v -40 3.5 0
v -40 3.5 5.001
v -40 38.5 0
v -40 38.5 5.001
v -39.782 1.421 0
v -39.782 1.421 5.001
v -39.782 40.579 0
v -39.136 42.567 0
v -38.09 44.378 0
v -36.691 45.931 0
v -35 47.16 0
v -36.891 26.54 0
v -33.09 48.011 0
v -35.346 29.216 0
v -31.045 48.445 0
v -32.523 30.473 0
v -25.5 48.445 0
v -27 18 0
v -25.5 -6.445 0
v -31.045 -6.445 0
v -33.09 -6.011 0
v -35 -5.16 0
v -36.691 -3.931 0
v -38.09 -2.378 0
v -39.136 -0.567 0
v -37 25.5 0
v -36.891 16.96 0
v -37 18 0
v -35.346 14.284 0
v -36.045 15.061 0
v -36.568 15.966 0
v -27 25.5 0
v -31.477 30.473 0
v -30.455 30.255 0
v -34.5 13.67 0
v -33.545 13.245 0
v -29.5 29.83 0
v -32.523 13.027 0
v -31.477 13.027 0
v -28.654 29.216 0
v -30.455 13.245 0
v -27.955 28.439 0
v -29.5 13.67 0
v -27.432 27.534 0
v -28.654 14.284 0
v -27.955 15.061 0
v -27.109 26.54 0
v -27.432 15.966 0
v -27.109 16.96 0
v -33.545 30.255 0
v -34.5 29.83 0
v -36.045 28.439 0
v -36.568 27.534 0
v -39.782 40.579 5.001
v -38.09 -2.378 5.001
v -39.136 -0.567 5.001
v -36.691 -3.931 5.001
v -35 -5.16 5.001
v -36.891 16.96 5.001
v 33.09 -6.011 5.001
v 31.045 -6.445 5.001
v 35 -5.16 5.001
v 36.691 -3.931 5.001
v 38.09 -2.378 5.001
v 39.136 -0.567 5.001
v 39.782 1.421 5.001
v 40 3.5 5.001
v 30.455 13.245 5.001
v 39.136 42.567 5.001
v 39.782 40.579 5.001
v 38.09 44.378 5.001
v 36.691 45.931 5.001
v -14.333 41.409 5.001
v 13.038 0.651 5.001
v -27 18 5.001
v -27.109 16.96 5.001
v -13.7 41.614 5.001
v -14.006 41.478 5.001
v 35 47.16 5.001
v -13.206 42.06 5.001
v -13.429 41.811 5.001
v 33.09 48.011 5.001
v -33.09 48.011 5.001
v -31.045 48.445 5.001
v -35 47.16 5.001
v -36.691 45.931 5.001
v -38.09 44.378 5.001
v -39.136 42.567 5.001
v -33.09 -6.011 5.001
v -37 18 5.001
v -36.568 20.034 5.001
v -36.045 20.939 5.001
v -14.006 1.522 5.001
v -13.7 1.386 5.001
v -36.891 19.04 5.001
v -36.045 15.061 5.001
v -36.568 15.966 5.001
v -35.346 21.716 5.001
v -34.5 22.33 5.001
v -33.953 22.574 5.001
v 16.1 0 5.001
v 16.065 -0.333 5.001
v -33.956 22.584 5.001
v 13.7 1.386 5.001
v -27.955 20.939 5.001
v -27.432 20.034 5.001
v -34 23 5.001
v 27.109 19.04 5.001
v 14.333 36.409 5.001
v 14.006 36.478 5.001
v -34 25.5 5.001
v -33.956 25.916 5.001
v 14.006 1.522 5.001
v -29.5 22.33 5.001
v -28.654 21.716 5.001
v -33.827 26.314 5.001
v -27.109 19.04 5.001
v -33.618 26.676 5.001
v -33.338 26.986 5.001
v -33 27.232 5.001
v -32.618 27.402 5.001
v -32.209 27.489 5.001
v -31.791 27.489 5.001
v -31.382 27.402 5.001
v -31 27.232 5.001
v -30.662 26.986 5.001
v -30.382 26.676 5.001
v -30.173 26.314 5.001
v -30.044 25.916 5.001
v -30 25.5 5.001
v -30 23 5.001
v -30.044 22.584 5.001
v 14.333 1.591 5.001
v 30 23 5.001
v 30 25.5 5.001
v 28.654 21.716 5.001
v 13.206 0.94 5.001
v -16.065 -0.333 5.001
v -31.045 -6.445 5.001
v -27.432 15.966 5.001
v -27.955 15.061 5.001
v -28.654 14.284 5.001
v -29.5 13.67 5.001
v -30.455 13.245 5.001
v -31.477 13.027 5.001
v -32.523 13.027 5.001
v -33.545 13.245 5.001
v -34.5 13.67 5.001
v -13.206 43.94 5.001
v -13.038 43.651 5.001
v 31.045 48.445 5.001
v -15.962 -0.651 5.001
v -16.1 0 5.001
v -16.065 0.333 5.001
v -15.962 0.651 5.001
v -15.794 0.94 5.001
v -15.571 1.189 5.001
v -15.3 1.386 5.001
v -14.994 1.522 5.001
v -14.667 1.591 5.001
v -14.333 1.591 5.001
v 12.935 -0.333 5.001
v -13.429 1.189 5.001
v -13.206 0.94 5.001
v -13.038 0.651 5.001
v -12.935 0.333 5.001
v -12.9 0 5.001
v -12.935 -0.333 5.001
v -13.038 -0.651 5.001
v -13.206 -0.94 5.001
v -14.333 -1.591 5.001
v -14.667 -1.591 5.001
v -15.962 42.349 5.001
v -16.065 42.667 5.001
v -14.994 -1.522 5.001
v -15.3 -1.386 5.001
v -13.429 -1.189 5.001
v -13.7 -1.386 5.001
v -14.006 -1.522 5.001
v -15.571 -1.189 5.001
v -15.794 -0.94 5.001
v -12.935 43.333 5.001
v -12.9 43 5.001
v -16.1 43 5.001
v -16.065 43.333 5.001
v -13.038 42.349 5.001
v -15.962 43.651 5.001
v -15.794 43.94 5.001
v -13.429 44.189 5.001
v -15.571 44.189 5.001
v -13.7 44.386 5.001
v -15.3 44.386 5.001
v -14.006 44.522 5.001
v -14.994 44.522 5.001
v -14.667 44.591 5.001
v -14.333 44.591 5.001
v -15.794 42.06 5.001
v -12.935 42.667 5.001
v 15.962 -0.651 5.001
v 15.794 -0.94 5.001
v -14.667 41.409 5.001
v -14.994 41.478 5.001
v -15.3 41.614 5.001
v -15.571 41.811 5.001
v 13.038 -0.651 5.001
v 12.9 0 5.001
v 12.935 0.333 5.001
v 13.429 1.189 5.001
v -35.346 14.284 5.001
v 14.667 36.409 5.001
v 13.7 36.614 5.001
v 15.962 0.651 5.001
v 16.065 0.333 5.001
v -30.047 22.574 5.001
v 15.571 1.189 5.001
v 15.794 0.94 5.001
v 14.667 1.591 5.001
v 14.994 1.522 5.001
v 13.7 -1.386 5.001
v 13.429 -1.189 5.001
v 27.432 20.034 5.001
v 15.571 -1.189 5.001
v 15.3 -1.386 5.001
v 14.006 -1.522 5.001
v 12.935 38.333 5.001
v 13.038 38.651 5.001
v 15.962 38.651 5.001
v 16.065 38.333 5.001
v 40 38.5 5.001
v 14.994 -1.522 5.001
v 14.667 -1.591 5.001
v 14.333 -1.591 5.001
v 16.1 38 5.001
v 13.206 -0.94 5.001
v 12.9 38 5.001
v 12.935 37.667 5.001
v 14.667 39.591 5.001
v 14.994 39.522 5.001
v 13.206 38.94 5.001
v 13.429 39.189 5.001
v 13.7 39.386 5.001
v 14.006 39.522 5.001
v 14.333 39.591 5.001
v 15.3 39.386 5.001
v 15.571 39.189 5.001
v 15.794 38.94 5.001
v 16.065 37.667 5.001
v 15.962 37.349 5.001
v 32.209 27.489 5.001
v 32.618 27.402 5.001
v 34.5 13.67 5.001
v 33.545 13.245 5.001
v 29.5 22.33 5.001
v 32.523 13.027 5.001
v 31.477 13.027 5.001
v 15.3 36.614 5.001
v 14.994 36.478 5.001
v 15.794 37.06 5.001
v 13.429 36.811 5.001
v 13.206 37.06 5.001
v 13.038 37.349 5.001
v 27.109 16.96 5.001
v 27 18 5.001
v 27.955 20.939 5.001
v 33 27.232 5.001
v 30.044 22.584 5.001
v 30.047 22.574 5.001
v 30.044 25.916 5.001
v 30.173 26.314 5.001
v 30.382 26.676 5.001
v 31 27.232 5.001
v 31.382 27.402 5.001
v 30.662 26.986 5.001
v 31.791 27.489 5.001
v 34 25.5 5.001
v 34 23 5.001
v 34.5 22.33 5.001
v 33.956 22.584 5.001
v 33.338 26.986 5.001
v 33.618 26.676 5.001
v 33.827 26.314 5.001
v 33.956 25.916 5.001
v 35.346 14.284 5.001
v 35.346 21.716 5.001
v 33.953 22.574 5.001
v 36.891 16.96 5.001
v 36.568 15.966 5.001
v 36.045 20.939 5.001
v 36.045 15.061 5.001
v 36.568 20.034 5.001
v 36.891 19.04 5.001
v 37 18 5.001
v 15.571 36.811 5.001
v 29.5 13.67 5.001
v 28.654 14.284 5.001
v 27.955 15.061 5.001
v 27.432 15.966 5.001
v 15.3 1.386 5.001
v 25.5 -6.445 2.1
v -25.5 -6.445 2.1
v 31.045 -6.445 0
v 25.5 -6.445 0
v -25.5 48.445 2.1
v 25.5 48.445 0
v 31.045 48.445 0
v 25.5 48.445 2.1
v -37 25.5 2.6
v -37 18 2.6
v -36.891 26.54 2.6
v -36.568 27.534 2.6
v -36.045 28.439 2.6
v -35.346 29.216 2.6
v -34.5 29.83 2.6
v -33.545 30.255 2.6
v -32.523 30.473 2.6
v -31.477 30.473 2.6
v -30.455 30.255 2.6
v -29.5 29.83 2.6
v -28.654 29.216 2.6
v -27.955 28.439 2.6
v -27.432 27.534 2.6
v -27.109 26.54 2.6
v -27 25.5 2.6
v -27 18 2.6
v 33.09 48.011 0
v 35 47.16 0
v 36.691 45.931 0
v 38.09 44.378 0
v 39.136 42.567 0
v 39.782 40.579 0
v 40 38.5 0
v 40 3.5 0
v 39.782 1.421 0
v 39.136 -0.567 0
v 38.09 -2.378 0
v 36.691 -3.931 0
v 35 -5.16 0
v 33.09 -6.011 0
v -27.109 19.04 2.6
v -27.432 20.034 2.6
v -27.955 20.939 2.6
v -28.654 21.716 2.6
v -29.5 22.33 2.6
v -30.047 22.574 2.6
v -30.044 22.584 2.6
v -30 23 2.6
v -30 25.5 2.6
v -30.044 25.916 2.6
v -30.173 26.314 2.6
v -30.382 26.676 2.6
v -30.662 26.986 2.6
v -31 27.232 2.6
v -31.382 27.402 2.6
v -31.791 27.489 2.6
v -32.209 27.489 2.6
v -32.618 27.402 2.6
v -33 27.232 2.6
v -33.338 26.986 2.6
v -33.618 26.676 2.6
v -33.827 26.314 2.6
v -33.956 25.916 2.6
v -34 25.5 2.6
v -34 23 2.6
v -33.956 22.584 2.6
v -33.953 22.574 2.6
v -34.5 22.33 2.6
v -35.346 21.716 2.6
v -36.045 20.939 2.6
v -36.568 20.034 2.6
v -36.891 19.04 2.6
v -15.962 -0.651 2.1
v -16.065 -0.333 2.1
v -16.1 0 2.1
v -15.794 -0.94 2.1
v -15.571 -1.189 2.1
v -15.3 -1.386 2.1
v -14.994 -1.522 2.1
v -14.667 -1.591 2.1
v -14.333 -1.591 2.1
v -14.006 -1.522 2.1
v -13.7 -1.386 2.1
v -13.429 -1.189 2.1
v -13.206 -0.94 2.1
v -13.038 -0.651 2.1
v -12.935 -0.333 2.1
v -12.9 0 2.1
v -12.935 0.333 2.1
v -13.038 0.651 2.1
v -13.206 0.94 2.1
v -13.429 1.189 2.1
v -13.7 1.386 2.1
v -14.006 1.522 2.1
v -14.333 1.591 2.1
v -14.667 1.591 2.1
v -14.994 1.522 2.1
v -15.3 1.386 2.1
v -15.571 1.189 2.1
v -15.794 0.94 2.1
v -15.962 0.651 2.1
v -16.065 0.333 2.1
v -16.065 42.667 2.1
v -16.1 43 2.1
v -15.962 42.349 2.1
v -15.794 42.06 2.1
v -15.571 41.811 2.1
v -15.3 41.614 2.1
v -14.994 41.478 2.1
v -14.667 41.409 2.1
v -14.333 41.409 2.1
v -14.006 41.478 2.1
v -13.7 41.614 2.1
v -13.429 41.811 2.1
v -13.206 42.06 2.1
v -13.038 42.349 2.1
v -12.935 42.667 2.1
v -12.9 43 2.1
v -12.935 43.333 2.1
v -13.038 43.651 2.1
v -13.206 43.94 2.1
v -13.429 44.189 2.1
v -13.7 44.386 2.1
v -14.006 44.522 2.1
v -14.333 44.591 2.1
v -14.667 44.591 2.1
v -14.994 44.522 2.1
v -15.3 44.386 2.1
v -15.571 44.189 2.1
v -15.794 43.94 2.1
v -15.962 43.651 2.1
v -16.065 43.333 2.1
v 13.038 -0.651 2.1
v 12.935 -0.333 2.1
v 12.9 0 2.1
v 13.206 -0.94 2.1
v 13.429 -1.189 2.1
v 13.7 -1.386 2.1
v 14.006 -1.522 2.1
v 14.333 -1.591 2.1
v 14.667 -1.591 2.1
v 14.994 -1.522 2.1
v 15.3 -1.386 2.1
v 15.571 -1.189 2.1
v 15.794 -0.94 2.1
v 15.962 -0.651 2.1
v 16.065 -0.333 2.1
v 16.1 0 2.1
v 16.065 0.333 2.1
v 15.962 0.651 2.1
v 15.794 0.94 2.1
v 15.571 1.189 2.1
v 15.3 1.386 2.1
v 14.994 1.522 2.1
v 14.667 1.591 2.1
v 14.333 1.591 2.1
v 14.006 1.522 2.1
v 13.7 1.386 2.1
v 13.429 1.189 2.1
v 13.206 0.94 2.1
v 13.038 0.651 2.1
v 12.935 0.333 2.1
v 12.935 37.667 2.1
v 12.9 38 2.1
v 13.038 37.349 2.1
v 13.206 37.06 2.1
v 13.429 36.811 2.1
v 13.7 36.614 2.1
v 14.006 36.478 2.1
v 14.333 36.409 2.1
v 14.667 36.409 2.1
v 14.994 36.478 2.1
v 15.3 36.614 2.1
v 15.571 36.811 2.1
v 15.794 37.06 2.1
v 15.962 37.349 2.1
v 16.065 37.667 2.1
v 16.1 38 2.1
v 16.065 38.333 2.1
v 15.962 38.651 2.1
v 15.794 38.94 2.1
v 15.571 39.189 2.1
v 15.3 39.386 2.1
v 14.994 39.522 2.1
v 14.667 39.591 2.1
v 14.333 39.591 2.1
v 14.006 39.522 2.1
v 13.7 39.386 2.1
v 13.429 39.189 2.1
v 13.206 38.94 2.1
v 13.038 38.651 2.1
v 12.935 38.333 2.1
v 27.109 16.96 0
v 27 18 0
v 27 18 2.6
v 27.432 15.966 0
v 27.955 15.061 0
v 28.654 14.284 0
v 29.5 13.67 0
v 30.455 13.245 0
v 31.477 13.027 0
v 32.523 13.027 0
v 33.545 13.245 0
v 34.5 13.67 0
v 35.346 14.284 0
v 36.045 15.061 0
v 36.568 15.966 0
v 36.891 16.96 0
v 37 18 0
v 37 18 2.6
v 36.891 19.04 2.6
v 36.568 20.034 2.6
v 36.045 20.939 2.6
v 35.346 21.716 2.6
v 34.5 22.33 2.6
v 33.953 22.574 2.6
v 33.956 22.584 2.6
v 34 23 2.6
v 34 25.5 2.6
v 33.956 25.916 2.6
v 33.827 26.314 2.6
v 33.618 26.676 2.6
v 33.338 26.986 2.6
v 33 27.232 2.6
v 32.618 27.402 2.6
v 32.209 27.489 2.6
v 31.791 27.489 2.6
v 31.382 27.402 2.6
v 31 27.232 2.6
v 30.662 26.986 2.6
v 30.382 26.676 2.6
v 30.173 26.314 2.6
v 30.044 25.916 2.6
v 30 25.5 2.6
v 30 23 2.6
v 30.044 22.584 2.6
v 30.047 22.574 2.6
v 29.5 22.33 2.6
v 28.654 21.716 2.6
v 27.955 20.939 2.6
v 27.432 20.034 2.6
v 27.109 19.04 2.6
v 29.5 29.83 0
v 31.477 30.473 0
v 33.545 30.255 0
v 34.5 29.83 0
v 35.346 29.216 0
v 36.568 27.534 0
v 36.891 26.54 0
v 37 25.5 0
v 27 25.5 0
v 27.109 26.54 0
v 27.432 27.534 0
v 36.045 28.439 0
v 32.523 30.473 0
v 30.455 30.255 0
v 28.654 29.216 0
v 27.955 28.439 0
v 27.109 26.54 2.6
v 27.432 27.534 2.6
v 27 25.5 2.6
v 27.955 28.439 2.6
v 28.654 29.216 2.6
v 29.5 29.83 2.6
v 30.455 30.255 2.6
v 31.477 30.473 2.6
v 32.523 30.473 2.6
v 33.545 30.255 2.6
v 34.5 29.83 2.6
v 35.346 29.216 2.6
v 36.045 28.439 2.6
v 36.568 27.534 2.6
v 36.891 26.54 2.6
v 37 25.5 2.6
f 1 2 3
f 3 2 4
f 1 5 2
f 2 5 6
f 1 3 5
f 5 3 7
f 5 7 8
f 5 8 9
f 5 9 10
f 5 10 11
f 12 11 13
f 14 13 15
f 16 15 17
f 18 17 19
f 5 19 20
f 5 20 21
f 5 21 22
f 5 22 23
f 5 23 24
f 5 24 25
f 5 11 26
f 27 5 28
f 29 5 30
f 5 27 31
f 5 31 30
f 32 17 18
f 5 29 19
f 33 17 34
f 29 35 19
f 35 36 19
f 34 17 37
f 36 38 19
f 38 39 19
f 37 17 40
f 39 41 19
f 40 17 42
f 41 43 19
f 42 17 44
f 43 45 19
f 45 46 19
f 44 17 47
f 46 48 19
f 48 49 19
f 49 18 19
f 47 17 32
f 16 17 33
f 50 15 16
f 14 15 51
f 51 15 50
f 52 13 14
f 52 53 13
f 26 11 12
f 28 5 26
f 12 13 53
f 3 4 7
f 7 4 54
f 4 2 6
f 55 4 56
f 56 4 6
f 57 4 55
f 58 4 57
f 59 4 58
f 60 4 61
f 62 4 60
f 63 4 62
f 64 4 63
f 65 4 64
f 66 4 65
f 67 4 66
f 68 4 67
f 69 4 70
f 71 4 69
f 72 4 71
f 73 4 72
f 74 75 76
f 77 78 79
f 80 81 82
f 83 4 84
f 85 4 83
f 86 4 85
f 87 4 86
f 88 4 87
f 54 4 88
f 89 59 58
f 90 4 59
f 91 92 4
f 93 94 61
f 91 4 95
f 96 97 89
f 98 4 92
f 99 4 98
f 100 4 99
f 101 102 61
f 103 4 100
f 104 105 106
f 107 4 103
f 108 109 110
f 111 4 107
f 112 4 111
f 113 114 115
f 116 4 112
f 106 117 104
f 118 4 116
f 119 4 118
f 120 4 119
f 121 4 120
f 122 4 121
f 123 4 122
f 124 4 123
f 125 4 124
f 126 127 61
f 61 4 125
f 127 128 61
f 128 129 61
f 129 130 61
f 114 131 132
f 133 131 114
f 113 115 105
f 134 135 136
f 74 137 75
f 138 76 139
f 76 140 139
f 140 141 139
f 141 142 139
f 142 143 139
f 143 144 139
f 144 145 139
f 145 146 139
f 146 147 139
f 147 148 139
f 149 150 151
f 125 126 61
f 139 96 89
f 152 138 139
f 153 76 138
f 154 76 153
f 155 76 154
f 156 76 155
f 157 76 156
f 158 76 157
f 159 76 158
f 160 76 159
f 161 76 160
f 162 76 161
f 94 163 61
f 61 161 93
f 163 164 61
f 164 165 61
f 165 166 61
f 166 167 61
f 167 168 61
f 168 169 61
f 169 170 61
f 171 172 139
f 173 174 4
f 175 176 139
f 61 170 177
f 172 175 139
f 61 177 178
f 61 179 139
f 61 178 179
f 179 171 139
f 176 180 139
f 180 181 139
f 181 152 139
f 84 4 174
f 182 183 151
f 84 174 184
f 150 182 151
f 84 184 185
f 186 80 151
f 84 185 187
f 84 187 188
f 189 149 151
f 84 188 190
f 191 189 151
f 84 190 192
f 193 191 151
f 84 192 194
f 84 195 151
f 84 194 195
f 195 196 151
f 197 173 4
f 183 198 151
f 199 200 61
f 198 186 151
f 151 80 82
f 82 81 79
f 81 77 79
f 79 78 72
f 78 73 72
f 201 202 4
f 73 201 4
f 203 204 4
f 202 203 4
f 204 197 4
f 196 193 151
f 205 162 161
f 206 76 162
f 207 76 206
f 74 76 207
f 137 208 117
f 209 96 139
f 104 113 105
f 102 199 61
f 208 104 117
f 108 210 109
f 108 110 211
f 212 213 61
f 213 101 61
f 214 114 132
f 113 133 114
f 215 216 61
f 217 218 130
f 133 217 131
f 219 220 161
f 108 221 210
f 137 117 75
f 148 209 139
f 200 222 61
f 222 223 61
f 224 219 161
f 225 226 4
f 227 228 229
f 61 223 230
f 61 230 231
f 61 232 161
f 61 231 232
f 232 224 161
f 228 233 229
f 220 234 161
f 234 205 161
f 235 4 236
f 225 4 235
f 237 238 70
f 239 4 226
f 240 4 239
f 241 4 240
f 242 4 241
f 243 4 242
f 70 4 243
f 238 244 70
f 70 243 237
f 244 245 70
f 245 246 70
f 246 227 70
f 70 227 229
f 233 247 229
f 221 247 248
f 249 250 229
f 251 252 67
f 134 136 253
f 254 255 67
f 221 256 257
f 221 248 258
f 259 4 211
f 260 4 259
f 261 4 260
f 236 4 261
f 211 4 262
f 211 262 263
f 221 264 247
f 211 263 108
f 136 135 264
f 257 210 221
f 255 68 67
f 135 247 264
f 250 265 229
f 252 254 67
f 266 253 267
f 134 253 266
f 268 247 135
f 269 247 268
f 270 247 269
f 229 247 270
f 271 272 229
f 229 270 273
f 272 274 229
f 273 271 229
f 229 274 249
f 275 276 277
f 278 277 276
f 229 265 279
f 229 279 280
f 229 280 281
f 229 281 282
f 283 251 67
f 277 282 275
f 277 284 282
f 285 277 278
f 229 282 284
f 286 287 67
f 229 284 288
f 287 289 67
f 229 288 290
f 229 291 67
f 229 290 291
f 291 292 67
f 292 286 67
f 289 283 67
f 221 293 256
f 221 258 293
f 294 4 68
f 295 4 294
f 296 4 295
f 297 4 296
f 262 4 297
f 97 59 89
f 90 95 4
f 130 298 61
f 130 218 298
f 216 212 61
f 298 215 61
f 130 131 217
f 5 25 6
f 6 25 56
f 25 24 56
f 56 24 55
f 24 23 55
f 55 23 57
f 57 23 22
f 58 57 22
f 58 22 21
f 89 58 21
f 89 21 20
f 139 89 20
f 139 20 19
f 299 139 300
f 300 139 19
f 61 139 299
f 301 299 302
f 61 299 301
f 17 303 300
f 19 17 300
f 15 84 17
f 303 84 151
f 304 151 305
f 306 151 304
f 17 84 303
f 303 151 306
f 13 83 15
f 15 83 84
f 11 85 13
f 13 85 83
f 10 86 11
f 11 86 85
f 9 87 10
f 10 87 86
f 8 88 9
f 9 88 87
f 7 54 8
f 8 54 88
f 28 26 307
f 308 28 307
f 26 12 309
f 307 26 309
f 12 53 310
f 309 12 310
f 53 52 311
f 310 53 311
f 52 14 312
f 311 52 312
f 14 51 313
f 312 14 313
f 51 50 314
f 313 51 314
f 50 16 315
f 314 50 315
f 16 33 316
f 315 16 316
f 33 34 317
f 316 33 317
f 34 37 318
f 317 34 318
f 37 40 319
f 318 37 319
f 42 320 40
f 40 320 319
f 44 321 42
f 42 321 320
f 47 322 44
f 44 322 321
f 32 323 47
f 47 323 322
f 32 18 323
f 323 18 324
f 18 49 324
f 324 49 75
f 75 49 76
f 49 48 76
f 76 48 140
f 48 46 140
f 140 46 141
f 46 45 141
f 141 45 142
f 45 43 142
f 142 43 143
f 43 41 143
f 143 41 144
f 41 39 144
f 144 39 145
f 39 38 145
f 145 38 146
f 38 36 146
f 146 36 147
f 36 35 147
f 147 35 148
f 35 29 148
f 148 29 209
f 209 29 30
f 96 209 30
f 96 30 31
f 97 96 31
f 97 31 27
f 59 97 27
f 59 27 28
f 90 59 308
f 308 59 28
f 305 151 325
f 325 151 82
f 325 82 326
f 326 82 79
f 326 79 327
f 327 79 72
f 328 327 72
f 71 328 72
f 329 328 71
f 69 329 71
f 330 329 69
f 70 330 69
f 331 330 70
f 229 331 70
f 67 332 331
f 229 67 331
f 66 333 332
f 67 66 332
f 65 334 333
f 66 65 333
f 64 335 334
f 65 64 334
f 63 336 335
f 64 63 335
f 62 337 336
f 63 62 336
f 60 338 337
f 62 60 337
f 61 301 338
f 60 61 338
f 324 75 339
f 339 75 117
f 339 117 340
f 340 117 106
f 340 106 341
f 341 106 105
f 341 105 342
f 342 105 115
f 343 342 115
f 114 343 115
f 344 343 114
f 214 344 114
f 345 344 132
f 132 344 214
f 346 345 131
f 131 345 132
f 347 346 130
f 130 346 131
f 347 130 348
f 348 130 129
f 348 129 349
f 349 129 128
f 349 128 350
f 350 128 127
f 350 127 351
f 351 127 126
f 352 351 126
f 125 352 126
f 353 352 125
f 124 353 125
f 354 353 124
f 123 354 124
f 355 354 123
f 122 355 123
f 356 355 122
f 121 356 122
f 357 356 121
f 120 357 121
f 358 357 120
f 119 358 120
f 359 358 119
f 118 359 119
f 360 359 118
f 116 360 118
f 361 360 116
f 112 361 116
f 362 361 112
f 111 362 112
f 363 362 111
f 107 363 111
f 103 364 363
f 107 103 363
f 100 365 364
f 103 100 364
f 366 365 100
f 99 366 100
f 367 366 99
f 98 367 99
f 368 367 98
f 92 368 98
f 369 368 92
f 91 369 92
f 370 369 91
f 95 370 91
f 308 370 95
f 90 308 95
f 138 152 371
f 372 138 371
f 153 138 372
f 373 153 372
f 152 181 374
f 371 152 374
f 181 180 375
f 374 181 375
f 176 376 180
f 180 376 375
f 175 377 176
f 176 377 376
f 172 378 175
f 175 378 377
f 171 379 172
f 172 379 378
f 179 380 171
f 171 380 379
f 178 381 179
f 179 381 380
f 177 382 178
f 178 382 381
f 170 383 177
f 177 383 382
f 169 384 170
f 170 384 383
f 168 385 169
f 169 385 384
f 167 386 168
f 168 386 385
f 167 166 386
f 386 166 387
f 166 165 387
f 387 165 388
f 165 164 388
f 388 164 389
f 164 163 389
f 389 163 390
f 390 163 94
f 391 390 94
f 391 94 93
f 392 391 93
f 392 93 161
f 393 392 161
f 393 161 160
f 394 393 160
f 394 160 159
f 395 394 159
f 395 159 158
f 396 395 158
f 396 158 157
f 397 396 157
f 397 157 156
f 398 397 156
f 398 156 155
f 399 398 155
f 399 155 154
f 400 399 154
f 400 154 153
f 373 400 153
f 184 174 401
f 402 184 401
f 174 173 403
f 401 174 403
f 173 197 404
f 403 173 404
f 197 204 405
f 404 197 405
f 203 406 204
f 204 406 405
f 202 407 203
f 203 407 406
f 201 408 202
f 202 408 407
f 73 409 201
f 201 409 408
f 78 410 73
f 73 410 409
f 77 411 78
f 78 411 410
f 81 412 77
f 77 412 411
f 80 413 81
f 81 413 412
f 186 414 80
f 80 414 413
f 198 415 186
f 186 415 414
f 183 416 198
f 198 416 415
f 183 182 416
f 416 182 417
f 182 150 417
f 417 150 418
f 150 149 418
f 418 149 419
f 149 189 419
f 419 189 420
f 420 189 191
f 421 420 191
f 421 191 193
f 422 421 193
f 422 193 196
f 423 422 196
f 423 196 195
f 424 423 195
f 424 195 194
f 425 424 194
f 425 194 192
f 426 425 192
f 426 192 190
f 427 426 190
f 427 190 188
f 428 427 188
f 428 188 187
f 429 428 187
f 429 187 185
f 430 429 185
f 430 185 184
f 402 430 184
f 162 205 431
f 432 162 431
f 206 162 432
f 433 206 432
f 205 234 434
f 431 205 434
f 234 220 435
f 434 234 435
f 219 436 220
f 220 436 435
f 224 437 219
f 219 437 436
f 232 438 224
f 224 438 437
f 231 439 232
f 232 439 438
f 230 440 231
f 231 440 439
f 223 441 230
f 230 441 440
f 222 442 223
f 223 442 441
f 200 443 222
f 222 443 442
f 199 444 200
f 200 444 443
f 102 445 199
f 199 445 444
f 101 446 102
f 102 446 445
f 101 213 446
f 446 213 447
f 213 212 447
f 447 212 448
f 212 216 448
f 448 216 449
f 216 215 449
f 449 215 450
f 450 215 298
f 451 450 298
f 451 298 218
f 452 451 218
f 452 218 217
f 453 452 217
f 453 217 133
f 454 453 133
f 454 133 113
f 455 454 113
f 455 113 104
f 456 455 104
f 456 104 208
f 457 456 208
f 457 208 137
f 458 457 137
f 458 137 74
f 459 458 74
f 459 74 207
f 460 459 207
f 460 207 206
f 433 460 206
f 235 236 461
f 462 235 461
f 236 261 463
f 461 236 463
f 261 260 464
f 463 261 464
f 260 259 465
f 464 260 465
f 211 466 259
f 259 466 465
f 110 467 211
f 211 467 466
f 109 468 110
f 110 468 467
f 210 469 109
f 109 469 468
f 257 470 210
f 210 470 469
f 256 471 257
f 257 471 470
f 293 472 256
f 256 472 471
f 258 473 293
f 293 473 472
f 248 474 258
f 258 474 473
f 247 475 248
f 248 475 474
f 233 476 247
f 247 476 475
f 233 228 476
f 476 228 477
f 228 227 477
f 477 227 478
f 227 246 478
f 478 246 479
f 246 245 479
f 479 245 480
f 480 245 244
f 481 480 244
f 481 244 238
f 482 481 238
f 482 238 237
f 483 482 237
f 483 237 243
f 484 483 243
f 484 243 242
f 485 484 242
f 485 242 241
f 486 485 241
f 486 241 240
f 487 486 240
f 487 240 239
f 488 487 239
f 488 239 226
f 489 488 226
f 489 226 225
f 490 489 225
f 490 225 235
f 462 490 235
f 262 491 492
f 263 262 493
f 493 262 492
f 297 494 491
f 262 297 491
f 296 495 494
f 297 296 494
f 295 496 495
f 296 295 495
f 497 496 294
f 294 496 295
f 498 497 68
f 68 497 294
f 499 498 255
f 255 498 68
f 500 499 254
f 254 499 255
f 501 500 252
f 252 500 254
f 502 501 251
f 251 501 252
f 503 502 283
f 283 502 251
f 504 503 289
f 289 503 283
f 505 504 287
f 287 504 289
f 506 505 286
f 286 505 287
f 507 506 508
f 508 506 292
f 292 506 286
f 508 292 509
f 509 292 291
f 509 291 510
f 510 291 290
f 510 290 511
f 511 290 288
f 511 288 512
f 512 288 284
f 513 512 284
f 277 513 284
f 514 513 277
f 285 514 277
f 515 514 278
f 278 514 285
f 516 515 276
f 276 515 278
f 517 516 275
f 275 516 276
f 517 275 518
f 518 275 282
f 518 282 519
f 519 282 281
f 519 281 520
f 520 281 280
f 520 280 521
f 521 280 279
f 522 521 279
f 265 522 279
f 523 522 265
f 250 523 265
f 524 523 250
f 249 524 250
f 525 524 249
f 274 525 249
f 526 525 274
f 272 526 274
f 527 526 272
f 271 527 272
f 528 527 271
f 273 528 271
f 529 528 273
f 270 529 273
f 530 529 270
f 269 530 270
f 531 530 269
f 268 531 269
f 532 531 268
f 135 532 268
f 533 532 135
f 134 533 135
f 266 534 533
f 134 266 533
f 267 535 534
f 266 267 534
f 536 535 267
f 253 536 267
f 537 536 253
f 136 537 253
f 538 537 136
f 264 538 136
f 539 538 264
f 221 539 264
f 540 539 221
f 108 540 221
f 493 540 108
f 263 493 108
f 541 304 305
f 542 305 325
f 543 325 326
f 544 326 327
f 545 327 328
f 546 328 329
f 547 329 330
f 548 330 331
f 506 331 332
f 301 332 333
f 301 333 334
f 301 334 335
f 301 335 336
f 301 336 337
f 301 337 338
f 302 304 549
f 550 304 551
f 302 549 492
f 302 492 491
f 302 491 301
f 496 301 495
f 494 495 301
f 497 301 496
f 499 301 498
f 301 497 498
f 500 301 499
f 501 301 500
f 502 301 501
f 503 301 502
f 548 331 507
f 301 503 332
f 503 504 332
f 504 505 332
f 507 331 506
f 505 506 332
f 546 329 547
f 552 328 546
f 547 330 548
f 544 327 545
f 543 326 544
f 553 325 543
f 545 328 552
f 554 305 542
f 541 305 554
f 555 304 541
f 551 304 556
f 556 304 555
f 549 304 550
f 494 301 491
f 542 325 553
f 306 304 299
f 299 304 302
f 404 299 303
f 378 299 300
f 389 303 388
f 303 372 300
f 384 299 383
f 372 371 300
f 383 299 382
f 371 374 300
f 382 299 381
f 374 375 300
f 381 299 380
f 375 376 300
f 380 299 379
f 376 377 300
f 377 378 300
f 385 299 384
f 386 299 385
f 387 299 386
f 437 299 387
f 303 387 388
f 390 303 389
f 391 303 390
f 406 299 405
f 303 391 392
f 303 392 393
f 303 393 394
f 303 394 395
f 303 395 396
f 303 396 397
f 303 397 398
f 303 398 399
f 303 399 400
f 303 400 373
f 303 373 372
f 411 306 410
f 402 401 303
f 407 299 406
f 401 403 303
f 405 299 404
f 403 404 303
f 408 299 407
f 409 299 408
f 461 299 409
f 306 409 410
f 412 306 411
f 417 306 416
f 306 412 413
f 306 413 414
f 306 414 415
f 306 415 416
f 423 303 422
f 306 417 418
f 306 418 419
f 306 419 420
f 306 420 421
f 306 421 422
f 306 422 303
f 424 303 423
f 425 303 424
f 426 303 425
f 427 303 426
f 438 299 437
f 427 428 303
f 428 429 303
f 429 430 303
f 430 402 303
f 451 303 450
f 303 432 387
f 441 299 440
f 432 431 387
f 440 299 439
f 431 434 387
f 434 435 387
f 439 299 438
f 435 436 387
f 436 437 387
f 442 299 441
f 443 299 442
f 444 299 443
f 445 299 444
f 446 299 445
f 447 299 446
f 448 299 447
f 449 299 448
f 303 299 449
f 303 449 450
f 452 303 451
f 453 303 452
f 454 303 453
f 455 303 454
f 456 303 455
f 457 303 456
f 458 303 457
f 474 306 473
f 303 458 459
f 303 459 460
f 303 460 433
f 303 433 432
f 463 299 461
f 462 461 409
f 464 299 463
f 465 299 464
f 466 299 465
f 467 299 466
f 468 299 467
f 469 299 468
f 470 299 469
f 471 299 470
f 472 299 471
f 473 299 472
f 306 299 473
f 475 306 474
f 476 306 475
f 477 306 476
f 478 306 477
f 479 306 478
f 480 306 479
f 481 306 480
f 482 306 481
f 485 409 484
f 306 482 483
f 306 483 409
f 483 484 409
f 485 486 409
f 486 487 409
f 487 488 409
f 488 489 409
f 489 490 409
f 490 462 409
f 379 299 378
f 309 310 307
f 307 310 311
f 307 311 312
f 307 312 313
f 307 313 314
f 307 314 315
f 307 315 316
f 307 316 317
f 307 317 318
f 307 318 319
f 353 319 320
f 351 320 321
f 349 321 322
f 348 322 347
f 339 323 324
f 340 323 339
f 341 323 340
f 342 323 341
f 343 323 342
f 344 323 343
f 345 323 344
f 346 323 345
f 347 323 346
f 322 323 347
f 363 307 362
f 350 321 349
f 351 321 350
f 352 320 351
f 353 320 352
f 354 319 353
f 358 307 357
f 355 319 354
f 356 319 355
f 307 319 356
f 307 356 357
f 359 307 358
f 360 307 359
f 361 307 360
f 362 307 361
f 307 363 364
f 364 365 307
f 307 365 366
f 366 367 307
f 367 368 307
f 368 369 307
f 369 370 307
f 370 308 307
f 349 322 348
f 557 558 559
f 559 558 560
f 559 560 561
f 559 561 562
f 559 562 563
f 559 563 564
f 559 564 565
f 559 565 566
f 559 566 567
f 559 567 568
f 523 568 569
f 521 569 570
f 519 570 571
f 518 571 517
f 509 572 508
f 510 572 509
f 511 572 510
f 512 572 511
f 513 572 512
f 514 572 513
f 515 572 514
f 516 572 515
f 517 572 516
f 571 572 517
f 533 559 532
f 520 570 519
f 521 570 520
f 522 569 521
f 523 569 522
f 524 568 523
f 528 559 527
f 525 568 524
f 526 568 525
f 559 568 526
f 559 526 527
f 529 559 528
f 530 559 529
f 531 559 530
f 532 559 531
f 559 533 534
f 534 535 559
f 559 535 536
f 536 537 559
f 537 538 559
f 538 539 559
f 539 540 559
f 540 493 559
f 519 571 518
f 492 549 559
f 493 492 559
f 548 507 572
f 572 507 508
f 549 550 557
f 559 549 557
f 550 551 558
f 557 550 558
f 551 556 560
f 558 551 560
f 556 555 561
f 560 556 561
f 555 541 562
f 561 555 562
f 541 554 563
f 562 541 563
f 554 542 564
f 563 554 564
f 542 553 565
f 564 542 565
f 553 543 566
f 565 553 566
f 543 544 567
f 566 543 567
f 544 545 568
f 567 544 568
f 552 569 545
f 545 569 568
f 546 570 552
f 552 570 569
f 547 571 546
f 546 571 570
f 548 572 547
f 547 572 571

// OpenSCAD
// file: keyhole.scad
rad_keyhole_head = 10 / 2;
dim_keyhole_head = 2.5;
rad_keyhole_neck = 4 / 2;
dim_keyhole_neck = dim_keyhole_head * 2;



module keyhole(length = 10){
	$fn = 30;
	translate([ 0, 0, -0.1]){
		cylinder(r = rad_keyhole_head, h = dim_keyhole_head + 1);
	
		hull(){
			translate([ 0, rad_keyhole_head, 0])cylinder(r = rad_keyhole_neck, h = dim_keyhole_neck);
			translate([ 0, rad_keyhole_head * 1.5, 0])cylinder(r = rad_keyhole_neck, h = dim_keyhole_neck);
		}
		hull(){
			translate([ 0, 0, dim_keyhole_head])cylinder(r = rad_keyhole_head, h = length);
			translate([ 0, rad_keyhole_head * 1.5, dim_keyhole_head])cylinder(r = rad_keyhole_head, h = length);
		}
	}
}

difference(){
	translate([ -5, -3.5, 0])minkowski(){cube([ 10, 15, 1]);cylinder(r=5,h=4);}
	keyhole();
}
// main file
use <keyhole.scad>;

module mounting_holes(){
	dim_gap_y_left = 43;
	dim_gap_y_right = 38;
	dim_gap_x = 29;
	rad_m3 = 1.6;
	$fn = 30;

	translate([ dim_gap_x * -0.5, 0, 0]){
		// bottoms	
		cylinder(r=rad_m3, h = 50, center=true);
		translate([ dim_gap_x, 0, 0])cylinder(r=rad_m3, h = 50, center=true);

		// tops
		translate([ 0, dim_gap_y_left, 0])cylinder(r=rad_m3, h = 50, center=true);
		translate([ dim_gap_x, dim_gap_y_right, 0])cylinder(r=rad_m3, h = 50, center=true);
	}

}

module plate(){
	dim_width = 80;
	dim_height = 55;
	dim_thickness = 5;
	rad_corner = 10;
	dia_corner = 2 * rad_corner;
	
	minkowski(){
		translate([ -0.5 * (dim_width - dia_corner), 3.5, 0])cube([ dim_width - dia_corner, dim_height - dia_corner, dim_thickness]);
		cylinder(r = rad_corner, h = 0.001);
	}
}

difference(){
	plate();
	mounting_holes();
	
	translate([0,18,5])rotate([ 180, 0, 180]){
		translate([ 32,0,0])keyhole();
		translate([ -32,0,0])keyhole();	
	}
	
	cube([51,200,4.2],center=true);
}
